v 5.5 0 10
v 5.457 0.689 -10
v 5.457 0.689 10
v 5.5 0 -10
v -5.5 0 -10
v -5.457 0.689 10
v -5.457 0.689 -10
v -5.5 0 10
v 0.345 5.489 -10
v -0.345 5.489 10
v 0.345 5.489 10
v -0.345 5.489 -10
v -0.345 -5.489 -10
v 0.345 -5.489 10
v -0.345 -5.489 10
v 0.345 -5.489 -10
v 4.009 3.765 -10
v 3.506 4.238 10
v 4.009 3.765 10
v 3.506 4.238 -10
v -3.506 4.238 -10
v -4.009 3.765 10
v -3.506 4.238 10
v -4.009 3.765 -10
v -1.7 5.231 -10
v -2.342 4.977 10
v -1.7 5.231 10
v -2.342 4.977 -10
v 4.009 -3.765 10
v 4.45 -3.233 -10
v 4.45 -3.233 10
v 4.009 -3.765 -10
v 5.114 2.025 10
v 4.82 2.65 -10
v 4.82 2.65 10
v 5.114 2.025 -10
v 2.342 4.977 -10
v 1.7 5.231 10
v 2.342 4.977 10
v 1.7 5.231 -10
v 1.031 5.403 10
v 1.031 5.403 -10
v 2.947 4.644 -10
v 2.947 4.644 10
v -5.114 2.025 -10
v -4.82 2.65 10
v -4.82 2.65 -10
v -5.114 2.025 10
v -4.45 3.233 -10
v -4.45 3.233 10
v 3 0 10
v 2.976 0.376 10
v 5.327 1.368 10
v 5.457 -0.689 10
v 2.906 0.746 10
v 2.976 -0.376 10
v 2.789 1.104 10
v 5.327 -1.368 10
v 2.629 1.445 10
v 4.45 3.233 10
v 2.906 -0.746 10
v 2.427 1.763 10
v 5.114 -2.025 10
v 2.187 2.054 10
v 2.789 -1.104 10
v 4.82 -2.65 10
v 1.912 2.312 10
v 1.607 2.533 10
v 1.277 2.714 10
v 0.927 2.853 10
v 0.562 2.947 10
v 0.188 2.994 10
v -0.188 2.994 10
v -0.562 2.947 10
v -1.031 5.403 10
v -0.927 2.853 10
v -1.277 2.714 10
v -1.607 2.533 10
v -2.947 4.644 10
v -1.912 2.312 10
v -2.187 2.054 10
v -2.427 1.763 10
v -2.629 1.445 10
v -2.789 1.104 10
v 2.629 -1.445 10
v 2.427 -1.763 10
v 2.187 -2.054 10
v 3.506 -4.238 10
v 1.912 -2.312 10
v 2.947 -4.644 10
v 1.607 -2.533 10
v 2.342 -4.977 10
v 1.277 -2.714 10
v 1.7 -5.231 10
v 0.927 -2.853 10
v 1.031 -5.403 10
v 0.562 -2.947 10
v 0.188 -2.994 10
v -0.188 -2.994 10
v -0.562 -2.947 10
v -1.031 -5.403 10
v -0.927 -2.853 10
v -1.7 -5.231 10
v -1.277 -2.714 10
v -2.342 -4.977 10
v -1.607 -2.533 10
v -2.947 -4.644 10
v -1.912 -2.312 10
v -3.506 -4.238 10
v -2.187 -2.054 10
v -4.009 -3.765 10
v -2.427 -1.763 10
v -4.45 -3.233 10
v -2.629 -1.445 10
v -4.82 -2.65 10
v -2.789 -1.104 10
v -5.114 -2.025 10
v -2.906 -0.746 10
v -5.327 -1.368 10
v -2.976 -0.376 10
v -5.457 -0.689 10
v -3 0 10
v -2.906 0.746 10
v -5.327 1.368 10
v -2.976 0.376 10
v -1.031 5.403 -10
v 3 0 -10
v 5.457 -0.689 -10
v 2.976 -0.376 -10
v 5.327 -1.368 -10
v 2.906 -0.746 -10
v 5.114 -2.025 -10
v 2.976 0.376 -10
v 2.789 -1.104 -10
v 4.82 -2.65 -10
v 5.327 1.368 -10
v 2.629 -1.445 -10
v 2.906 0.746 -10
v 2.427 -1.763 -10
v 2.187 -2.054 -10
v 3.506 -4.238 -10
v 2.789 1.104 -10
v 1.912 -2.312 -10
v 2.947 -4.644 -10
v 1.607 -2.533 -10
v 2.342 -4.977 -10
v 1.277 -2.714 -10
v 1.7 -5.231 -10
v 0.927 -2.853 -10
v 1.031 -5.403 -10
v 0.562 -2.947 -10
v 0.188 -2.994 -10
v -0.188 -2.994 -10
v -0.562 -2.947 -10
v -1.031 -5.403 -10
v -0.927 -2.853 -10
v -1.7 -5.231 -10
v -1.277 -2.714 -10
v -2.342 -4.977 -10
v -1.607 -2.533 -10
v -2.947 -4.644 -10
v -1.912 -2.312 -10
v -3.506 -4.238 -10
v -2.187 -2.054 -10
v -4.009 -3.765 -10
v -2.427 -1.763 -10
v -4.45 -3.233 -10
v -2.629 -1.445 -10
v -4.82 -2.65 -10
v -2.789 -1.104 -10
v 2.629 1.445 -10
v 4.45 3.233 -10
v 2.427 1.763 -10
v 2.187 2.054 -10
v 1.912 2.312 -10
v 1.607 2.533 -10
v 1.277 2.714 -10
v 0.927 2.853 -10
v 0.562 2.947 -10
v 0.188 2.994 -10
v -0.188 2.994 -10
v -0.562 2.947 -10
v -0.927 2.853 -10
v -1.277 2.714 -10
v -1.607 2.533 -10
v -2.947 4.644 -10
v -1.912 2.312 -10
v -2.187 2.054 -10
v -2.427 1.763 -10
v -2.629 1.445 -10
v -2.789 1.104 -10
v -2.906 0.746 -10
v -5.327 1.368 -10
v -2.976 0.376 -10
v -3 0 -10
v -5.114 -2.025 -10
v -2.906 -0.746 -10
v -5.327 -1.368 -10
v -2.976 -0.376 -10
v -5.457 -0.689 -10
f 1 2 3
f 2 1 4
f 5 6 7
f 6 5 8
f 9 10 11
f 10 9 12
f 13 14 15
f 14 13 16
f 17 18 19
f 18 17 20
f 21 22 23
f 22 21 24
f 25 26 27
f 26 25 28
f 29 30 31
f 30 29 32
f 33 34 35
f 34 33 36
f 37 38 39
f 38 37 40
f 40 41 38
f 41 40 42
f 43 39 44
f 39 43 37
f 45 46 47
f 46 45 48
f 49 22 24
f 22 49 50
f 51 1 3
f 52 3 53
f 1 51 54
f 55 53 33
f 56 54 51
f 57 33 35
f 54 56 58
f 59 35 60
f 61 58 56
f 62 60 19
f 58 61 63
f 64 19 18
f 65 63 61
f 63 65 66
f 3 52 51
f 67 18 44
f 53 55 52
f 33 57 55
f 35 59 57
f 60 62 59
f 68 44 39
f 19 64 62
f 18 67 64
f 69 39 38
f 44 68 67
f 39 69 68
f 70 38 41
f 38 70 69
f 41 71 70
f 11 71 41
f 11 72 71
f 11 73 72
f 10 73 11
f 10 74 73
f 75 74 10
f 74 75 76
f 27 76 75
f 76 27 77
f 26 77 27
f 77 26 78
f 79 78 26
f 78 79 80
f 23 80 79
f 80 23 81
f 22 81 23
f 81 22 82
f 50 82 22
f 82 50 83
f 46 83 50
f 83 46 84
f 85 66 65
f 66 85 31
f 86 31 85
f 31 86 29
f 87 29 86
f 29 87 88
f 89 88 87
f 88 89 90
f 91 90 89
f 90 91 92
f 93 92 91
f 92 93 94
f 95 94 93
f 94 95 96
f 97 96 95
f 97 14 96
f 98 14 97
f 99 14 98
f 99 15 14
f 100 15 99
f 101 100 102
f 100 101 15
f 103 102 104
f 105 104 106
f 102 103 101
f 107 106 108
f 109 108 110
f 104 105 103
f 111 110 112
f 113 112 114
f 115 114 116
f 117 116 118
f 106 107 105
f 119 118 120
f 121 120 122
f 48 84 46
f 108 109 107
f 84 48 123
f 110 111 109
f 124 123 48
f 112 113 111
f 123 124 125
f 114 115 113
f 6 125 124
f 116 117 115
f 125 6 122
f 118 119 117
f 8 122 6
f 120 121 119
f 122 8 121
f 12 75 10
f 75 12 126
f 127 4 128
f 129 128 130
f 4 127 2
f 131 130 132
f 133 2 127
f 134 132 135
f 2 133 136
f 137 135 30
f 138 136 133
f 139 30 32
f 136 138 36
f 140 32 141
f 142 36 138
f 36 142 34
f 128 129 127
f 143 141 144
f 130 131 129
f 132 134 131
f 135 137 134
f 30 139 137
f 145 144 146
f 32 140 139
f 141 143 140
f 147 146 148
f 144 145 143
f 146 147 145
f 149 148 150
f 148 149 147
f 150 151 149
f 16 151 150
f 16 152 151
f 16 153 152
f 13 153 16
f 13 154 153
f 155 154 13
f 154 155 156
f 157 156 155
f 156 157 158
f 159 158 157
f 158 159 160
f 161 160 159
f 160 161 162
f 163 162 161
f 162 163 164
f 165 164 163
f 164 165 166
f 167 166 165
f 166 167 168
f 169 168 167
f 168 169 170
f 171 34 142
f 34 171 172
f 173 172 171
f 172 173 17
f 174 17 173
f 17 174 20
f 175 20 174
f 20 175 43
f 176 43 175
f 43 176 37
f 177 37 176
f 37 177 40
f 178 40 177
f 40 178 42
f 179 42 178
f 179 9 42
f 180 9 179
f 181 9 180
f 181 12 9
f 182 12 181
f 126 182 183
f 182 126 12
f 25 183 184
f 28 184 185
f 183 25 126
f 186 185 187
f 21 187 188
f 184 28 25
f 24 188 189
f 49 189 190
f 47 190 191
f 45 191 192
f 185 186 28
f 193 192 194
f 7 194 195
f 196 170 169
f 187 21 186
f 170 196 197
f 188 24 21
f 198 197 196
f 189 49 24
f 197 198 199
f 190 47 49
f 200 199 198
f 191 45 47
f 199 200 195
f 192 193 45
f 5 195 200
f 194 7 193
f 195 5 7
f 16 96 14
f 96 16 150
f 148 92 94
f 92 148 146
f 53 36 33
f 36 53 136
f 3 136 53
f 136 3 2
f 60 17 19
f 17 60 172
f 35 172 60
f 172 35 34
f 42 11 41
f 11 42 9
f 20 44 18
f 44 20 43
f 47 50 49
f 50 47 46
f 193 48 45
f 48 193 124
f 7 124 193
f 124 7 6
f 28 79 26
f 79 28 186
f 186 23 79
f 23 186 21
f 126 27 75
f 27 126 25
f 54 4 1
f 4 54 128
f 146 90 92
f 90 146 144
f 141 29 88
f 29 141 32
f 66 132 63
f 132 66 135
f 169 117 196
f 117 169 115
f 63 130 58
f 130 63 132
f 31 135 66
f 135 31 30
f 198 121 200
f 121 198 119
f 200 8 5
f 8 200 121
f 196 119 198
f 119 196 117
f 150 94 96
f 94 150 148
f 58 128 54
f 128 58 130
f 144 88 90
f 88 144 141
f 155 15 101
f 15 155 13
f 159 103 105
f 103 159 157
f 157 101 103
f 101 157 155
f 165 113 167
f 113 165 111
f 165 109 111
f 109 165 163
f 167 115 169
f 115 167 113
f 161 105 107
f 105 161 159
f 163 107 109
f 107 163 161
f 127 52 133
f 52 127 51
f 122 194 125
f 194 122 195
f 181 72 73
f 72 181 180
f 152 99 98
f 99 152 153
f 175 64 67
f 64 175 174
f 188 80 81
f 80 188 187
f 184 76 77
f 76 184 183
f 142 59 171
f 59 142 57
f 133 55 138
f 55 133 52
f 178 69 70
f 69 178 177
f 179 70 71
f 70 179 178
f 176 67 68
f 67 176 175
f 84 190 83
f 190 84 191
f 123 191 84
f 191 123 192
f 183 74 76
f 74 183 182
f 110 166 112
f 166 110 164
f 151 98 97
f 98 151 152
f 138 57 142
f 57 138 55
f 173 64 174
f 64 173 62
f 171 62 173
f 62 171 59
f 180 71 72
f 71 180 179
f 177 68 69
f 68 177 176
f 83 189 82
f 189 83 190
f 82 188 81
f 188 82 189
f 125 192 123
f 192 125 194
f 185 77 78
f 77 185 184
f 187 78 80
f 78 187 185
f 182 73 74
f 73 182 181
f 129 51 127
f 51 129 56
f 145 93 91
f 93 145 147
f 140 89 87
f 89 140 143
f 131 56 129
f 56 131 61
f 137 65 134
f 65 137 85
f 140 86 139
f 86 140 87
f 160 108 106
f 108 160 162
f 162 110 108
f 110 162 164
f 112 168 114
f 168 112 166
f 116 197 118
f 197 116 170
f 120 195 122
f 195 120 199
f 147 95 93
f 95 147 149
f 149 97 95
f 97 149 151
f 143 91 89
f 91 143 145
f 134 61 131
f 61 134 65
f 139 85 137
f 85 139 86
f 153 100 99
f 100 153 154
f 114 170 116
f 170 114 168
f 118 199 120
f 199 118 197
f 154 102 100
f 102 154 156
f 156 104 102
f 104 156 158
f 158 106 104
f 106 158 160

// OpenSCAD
$fn = 50;


difference() {
	union() {
		translate(v = [0, 0, -10.0000000000]) {
			cylinder(h = 20, r = 5.5000000000);
		}
	}
	union() {
		translate(v = [0, 0, -100.0000000000]) {
			cylinder(h = 200, r = 3);
		}
	}
}
